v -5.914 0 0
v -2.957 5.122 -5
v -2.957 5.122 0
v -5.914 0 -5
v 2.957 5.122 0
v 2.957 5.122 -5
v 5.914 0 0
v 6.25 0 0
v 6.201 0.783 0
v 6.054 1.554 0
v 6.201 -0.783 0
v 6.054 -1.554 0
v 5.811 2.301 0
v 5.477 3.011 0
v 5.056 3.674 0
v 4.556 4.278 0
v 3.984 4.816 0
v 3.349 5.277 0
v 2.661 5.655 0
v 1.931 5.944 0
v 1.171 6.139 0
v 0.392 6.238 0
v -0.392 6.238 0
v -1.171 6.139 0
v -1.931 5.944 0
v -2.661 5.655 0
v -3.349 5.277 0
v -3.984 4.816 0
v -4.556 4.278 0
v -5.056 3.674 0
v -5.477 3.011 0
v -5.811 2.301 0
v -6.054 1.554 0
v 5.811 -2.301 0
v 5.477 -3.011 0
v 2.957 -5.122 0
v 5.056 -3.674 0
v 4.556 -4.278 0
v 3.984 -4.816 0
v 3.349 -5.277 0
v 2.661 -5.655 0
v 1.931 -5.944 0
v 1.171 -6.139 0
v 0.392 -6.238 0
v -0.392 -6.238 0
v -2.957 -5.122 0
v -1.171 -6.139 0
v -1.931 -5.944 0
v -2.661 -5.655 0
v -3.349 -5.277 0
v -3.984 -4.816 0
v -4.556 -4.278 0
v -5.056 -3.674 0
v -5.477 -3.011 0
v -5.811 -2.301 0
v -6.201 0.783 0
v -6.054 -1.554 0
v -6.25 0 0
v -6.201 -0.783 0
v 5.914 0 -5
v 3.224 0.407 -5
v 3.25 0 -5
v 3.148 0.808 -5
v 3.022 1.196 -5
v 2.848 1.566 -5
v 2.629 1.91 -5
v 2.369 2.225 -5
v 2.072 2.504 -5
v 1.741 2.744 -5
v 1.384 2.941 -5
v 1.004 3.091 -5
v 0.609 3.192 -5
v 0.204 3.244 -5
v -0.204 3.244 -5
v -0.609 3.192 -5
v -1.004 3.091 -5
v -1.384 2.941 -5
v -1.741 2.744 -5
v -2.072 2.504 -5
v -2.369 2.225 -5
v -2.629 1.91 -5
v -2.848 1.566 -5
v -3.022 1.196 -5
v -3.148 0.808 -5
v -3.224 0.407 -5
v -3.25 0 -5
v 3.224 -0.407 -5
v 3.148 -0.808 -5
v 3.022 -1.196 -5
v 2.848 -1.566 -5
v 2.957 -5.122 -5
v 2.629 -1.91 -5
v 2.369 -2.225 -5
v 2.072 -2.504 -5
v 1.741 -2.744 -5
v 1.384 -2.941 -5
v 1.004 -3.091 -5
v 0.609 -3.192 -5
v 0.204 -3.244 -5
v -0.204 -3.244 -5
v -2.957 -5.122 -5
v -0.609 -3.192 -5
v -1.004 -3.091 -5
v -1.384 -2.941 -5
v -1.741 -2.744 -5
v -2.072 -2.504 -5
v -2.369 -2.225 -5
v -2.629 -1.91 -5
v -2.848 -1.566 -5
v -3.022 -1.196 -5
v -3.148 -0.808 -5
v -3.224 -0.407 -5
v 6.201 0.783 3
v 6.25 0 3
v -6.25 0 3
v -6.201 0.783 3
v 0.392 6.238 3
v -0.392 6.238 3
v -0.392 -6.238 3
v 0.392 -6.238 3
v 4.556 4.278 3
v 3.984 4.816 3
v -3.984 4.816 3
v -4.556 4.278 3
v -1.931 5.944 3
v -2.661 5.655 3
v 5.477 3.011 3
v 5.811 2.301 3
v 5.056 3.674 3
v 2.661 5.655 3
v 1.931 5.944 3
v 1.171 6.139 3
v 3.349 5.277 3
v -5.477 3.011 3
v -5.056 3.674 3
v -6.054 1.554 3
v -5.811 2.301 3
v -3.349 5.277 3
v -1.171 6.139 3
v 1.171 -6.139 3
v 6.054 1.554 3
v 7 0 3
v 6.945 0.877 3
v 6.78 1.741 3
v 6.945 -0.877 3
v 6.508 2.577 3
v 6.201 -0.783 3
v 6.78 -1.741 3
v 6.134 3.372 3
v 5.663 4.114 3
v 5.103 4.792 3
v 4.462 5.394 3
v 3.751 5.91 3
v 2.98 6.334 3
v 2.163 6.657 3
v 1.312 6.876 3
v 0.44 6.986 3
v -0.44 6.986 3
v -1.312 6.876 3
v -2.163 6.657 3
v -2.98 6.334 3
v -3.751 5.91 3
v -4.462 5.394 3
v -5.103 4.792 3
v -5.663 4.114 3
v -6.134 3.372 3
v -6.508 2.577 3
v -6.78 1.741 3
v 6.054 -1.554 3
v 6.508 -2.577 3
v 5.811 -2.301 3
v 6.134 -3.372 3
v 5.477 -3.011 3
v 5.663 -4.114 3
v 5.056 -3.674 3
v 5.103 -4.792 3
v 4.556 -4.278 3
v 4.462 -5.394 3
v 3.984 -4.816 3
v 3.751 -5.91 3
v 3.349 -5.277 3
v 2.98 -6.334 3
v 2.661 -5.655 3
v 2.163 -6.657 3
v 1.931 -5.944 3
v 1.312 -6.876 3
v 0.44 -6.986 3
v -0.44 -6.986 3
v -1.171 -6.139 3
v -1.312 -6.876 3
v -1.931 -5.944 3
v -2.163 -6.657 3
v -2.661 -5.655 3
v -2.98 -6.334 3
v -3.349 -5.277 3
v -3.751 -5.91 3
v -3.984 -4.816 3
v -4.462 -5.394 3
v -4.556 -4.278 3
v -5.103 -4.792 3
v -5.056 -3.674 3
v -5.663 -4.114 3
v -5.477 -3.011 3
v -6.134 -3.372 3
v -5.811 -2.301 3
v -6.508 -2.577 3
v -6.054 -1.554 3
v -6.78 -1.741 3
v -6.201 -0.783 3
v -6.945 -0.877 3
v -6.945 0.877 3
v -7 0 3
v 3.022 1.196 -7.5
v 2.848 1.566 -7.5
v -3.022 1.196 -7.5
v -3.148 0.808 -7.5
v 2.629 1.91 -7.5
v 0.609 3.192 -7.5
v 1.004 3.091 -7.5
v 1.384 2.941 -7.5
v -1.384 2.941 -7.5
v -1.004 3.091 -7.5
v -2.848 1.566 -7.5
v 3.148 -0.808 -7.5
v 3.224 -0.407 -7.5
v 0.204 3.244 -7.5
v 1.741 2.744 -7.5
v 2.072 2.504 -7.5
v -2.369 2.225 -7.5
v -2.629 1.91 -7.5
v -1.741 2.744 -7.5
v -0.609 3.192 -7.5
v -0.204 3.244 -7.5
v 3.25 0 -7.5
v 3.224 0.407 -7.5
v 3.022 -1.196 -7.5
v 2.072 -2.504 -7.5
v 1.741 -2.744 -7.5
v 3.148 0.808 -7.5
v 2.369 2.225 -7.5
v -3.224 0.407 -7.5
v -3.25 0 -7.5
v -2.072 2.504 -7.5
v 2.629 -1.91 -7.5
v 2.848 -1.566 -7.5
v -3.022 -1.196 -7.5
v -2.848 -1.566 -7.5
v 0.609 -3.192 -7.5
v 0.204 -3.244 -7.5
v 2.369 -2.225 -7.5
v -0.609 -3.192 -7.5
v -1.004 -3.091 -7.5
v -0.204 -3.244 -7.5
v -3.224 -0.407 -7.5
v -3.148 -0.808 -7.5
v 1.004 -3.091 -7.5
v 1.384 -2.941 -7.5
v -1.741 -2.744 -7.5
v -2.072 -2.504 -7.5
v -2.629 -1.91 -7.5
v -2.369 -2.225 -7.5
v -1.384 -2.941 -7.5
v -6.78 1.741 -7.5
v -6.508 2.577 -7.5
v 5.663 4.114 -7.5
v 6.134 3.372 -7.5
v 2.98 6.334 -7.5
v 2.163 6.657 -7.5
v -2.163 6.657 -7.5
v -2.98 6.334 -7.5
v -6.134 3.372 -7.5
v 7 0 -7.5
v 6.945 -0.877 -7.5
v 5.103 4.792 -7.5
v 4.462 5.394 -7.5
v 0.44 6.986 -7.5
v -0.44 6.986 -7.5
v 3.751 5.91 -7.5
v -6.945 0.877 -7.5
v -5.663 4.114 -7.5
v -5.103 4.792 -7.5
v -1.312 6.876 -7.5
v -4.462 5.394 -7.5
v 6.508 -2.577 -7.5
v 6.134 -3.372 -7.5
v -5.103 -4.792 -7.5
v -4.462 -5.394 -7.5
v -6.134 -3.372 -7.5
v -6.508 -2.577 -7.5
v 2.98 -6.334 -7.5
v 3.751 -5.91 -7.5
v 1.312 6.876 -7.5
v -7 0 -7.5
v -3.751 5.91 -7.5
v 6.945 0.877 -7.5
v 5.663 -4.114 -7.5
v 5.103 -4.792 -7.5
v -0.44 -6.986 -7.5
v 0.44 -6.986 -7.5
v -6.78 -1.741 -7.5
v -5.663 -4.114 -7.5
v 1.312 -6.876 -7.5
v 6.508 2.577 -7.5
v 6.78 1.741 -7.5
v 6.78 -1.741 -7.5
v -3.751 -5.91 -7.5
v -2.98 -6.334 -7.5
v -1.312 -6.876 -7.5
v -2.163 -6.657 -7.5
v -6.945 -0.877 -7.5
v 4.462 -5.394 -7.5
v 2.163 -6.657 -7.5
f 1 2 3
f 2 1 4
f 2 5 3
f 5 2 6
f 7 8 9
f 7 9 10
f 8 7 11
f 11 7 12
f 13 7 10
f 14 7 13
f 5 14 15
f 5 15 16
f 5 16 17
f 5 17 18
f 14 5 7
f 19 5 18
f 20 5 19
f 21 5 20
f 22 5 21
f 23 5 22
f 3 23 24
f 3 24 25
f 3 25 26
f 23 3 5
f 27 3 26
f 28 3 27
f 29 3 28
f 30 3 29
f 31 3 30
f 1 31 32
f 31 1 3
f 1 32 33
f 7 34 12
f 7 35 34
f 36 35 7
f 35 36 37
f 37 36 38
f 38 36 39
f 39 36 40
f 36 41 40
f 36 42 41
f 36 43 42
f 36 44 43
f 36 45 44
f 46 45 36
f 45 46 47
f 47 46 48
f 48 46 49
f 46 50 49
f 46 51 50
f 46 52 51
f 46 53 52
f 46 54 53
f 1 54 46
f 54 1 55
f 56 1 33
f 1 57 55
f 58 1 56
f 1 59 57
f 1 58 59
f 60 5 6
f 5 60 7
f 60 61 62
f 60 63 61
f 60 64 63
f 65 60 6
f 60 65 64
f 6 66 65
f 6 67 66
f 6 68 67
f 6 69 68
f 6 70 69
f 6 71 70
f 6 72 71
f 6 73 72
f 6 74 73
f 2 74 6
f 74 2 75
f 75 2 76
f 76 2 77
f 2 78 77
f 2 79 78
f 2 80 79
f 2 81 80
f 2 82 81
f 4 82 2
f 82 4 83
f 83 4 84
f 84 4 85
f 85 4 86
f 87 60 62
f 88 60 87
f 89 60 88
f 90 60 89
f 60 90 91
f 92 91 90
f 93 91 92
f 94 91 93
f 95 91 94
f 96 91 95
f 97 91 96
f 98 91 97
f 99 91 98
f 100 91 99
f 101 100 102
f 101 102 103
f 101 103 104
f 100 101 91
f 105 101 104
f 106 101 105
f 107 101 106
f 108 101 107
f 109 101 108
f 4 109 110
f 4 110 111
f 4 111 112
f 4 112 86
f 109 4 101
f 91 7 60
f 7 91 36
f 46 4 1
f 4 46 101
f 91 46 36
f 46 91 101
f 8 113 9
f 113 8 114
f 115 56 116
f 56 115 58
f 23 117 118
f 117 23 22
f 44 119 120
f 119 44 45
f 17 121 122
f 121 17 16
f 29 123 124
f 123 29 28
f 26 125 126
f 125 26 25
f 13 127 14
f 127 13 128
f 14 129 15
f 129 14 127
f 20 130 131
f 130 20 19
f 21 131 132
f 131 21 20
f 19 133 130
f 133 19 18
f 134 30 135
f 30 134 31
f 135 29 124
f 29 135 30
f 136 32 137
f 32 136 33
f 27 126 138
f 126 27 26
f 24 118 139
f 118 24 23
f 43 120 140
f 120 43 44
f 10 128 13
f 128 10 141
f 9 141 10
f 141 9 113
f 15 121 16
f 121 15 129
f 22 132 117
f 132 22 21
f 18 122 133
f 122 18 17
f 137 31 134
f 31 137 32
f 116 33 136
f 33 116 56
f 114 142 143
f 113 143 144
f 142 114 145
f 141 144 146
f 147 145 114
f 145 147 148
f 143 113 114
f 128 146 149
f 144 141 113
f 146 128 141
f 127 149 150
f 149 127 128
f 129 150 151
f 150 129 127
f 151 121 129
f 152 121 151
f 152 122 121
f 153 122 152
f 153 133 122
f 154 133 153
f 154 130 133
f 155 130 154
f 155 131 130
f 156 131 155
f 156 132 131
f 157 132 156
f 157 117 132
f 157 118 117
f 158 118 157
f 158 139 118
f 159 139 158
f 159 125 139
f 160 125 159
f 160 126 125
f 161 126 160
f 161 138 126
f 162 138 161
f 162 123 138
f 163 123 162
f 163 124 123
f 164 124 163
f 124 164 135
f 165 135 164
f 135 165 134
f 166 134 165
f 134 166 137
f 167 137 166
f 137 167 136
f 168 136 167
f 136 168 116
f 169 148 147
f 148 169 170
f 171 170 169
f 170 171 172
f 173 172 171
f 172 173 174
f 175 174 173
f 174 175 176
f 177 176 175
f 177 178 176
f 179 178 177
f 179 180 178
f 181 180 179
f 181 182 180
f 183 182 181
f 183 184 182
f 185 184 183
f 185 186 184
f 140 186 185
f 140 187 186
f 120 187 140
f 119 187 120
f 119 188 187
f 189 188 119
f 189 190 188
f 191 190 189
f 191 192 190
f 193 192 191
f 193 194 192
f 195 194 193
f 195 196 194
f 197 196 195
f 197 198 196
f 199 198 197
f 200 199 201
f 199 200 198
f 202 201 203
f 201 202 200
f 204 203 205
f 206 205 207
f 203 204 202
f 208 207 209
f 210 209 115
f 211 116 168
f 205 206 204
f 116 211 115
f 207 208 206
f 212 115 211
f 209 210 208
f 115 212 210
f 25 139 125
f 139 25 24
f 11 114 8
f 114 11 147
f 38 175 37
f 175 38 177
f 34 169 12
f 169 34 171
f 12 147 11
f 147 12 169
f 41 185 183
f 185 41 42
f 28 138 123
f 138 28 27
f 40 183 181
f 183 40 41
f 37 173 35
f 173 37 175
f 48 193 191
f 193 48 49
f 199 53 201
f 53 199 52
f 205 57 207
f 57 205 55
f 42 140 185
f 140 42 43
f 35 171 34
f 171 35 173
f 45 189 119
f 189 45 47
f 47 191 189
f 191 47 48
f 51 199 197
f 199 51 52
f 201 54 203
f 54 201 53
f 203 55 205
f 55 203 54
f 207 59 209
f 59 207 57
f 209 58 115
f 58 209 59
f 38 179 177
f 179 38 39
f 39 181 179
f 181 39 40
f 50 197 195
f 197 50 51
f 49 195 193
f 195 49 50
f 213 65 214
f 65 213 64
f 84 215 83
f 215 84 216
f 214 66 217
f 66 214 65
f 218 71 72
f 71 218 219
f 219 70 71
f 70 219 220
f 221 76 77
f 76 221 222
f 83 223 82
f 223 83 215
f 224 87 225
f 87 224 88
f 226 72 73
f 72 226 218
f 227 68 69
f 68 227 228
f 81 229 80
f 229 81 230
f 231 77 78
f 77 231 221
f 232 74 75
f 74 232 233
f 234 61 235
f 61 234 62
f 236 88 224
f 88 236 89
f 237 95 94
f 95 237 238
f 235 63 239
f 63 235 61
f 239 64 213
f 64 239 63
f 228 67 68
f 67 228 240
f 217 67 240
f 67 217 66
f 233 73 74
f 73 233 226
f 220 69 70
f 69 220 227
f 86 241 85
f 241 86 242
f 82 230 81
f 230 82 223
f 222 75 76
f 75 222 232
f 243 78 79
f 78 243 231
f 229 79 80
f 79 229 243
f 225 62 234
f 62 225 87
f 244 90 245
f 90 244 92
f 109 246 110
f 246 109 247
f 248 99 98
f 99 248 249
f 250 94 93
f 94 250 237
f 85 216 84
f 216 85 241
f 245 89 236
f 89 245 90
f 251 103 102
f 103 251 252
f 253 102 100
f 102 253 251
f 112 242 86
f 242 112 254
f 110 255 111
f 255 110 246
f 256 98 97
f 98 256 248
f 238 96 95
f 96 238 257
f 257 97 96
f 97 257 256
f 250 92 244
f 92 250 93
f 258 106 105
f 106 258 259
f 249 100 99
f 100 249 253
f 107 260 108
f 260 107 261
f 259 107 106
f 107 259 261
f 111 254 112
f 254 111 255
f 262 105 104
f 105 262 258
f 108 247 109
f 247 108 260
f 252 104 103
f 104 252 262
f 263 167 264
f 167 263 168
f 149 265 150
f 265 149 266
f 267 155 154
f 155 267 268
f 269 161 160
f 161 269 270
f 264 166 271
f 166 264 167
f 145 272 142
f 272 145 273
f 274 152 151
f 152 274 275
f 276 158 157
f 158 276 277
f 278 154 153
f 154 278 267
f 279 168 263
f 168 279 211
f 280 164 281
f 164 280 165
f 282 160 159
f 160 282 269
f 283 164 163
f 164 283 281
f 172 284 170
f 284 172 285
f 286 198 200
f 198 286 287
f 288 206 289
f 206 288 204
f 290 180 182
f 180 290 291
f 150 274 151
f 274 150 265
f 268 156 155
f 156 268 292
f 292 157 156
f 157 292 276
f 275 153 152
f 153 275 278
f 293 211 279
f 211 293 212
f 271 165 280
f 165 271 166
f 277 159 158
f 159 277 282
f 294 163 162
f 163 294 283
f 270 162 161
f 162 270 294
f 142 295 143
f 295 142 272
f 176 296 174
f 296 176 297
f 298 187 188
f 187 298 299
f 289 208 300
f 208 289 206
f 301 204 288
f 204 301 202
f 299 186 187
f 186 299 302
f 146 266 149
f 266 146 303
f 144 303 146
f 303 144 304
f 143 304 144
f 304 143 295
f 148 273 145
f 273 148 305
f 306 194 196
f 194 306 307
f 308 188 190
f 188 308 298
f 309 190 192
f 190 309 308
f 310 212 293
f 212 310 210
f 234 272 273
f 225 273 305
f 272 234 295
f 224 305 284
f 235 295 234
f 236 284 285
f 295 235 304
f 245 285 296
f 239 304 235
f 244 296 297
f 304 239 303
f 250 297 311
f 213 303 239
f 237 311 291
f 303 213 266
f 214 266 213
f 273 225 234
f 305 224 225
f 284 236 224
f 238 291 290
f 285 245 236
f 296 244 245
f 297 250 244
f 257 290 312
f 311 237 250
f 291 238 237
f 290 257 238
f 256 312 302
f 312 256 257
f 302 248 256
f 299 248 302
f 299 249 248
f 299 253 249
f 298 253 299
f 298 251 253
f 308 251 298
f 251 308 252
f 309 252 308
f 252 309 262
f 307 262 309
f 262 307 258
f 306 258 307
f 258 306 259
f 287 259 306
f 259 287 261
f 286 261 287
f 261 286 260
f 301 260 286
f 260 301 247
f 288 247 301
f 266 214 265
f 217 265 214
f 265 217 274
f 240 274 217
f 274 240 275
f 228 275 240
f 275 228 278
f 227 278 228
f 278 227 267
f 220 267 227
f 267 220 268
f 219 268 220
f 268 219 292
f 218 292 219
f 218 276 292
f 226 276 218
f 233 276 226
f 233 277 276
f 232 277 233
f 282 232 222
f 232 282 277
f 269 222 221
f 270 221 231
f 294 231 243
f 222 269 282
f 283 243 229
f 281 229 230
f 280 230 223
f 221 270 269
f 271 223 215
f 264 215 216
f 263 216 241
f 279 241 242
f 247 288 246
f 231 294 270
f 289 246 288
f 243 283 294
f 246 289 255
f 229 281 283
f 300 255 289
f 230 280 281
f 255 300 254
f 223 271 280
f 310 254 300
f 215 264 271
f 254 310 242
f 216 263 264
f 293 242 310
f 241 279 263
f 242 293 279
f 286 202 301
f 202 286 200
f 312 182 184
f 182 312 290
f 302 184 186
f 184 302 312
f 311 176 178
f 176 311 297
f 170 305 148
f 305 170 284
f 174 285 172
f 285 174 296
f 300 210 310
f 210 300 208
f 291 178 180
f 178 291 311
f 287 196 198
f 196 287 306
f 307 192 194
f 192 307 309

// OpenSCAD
$fn = 50;


difference() {
	union() {
		translate(v = [0, 0, -7.5000000000]) {
			cylinder(h = 10.5000000000, r = 7.0000000000);
		}
	}
	union() {
		translate(v = [0, 0, 0]) {
			rotate(a = [0, 0, 0]) {
				difference() {
					union() {
						translate(v = [0, 0, -5]) {
							linear_extrude(height = 5) {
								polygon(points = [[5.9142500000, 0.0000000000], [2.9571250000, 5.1218907443], [-2.9571250000, 5.1218907443], [-5.9142500000, 0.0000000000], [-2.9571250000, -5.1218907443], [2.9571250000, -5.1218907443]]);
							}
						}
					}
					union();
				}
			}
		}
		#cylinder(h = 3, r = 6.2500000000);
		#translate(v = [0, 0, -100.0000000000]) {
			cylinder(h = 200, r = 3.2500000000);
		}
	}
}
